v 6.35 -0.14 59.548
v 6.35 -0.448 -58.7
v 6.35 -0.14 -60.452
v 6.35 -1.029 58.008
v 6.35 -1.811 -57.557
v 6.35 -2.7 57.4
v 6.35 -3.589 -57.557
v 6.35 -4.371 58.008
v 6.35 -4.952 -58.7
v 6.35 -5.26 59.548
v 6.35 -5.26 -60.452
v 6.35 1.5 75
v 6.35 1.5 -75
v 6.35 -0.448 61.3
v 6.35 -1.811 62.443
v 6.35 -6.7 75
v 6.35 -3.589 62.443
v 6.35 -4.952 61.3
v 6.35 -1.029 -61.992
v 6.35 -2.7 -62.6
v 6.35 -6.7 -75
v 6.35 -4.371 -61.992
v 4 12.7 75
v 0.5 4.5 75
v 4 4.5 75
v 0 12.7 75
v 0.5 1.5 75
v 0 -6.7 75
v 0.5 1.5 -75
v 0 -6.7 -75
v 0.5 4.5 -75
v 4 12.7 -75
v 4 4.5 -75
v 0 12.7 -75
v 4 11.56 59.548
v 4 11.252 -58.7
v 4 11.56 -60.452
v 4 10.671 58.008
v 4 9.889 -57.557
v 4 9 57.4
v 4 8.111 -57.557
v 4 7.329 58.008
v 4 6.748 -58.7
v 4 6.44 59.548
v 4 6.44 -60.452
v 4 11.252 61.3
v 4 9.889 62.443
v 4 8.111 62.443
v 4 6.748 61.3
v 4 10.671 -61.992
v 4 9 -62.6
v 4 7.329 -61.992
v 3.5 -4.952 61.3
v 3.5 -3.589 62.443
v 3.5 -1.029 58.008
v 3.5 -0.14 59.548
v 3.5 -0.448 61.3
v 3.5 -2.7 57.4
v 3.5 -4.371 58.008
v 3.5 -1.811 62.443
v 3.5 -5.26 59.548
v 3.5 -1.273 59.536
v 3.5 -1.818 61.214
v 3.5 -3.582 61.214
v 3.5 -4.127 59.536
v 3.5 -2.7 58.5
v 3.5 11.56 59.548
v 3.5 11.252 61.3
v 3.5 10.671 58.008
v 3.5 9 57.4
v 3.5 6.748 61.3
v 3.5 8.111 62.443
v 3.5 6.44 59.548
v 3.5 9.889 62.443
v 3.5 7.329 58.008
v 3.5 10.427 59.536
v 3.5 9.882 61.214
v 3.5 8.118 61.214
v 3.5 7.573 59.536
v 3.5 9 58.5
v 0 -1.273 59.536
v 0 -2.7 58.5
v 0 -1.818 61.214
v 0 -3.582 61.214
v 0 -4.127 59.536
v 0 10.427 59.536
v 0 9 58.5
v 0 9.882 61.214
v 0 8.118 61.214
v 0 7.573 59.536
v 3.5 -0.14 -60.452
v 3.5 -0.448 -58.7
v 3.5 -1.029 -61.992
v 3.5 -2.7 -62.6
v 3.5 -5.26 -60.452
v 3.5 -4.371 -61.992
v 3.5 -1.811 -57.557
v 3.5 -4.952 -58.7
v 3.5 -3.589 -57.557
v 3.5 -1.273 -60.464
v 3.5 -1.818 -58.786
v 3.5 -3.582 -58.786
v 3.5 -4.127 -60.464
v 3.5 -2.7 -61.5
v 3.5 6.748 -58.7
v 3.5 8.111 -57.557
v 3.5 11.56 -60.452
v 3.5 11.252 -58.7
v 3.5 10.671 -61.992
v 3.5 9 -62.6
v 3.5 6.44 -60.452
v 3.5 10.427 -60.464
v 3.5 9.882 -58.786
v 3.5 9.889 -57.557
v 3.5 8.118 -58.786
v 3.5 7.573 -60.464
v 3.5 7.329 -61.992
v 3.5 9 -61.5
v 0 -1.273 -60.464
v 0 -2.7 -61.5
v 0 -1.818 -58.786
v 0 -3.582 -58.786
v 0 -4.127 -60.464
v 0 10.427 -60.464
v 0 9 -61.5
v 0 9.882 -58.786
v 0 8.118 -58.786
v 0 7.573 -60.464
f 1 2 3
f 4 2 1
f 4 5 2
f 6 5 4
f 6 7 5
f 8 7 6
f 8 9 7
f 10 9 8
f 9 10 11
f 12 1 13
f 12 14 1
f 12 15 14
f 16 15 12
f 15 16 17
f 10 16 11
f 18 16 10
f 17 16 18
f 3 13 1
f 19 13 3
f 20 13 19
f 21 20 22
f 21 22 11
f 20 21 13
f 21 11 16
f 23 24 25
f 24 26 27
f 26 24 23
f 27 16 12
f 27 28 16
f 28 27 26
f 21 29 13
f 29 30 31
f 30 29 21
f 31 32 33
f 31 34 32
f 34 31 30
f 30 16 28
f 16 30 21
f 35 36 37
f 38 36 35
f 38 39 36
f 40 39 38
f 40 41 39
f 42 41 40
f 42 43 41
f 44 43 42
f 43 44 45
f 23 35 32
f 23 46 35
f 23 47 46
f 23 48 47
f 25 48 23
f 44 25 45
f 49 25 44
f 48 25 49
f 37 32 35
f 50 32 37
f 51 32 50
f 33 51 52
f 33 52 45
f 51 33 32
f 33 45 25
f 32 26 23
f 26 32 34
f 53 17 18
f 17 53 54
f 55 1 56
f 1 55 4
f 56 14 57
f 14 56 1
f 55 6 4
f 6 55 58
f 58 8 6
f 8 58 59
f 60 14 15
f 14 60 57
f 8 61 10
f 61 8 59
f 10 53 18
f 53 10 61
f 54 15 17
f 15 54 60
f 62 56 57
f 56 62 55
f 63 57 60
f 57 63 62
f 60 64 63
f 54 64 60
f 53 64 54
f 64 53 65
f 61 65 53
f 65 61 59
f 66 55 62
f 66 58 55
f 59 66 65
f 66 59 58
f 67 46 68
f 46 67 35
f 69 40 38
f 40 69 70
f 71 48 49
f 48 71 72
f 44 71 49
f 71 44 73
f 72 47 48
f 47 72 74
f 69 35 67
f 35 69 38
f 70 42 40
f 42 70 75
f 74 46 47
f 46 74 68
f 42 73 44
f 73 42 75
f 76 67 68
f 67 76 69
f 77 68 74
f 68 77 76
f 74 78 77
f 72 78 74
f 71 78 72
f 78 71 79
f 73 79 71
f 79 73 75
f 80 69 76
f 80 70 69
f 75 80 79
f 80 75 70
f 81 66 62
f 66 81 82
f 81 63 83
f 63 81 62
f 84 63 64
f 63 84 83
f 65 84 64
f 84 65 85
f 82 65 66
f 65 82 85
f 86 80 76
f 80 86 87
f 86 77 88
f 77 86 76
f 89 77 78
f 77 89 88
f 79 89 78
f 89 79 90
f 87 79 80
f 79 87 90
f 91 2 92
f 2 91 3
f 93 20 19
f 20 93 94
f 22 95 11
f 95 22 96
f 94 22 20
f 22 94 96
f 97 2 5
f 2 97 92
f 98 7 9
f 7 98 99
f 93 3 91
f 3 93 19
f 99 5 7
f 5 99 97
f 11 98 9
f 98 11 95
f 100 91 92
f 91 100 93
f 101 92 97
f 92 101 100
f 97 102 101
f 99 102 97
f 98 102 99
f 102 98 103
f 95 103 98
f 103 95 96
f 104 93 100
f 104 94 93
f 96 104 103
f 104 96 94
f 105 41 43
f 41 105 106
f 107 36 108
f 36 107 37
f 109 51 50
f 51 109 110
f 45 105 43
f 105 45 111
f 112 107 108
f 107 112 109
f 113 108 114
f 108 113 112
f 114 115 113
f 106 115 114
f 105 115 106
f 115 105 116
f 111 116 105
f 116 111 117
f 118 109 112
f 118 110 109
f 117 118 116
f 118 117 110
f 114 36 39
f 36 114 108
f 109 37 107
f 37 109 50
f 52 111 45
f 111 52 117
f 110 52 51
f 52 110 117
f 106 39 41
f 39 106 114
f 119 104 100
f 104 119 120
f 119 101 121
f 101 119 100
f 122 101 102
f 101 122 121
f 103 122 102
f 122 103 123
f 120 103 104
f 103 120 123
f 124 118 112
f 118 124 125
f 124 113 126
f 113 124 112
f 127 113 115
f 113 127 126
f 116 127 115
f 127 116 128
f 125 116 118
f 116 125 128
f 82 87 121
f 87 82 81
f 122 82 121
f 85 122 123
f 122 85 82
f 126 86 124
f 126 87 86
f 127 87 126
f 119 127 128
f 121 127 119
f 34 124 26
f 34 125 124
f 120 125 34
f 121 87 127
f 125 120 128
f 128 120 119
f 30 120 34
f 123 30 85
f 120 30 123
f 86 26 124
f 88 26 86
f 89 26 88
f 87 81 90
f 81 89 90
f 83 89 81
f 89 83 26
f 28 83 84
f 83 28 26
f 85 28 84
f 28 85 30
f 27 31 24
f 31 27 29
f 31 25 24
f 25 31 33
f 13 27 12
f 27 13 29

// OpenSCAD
    difference() {
    
    union() {
        translate([0, -1.7, 0]) { 
            cube([12.7, 10, 150], true);
        }
        translate([0, 6.35, 0]) {
            cube([8, 12.7, 150], true);
            
        }

    } 
    translate([-6.35, 0, 0]) {
        cube([12.7, 30, 200], true);
    }
    translate([8, 3, 0]) {
        cube([15, 3, 200], true);
        
    }
translate([0, 0, 60]) {
    // countersink
    translate([6, -2.7, 0]) {
        rotate([0, 90, 0]) {
            cylinder(5, 2.6, 2.6, true);
        }
    }
    translate([6, 9, 0]) {
        rotate([0, 90, 0]) {
            cylinder(5, 2.6, 2.6, true);
        }
    }
    // small holes
    translate([6, -2.7, 0]) {
        rotate([0, 90, 0]) {
            cylinder(15, 1.5, 1.5, true);
        }
    }
    translate([6, 9, 0]) {
        rotate([0, 90, 0]) {
            cylinder(15, 1.5, 1.5, true);
        }
    }
}

translate([0, 0, -60]) {
    // countersink
    translate([6, -2.7, 0]) {
        rotate([0, 90, 0]) {
            cylinder(5, 2.6, 2.6, true);
        }
    }
    translate([6, 9, 0]) {
        rotate([0, 90, 0]) {
            cylinder(5, 2.6, 2.6, true);
        }
    }
    // small holes
    translate([6, -2.7, 0]) {
        rotate([0, 90, 0]) {
            cylinder(15, 1.5, 1.5, true);
        }
    }
    translate([6, 9, 0]) {
        rotate([0, 90, 0]) {
            cylinder(15, 1.5, 1.5, true);
        }
    }
}
}
